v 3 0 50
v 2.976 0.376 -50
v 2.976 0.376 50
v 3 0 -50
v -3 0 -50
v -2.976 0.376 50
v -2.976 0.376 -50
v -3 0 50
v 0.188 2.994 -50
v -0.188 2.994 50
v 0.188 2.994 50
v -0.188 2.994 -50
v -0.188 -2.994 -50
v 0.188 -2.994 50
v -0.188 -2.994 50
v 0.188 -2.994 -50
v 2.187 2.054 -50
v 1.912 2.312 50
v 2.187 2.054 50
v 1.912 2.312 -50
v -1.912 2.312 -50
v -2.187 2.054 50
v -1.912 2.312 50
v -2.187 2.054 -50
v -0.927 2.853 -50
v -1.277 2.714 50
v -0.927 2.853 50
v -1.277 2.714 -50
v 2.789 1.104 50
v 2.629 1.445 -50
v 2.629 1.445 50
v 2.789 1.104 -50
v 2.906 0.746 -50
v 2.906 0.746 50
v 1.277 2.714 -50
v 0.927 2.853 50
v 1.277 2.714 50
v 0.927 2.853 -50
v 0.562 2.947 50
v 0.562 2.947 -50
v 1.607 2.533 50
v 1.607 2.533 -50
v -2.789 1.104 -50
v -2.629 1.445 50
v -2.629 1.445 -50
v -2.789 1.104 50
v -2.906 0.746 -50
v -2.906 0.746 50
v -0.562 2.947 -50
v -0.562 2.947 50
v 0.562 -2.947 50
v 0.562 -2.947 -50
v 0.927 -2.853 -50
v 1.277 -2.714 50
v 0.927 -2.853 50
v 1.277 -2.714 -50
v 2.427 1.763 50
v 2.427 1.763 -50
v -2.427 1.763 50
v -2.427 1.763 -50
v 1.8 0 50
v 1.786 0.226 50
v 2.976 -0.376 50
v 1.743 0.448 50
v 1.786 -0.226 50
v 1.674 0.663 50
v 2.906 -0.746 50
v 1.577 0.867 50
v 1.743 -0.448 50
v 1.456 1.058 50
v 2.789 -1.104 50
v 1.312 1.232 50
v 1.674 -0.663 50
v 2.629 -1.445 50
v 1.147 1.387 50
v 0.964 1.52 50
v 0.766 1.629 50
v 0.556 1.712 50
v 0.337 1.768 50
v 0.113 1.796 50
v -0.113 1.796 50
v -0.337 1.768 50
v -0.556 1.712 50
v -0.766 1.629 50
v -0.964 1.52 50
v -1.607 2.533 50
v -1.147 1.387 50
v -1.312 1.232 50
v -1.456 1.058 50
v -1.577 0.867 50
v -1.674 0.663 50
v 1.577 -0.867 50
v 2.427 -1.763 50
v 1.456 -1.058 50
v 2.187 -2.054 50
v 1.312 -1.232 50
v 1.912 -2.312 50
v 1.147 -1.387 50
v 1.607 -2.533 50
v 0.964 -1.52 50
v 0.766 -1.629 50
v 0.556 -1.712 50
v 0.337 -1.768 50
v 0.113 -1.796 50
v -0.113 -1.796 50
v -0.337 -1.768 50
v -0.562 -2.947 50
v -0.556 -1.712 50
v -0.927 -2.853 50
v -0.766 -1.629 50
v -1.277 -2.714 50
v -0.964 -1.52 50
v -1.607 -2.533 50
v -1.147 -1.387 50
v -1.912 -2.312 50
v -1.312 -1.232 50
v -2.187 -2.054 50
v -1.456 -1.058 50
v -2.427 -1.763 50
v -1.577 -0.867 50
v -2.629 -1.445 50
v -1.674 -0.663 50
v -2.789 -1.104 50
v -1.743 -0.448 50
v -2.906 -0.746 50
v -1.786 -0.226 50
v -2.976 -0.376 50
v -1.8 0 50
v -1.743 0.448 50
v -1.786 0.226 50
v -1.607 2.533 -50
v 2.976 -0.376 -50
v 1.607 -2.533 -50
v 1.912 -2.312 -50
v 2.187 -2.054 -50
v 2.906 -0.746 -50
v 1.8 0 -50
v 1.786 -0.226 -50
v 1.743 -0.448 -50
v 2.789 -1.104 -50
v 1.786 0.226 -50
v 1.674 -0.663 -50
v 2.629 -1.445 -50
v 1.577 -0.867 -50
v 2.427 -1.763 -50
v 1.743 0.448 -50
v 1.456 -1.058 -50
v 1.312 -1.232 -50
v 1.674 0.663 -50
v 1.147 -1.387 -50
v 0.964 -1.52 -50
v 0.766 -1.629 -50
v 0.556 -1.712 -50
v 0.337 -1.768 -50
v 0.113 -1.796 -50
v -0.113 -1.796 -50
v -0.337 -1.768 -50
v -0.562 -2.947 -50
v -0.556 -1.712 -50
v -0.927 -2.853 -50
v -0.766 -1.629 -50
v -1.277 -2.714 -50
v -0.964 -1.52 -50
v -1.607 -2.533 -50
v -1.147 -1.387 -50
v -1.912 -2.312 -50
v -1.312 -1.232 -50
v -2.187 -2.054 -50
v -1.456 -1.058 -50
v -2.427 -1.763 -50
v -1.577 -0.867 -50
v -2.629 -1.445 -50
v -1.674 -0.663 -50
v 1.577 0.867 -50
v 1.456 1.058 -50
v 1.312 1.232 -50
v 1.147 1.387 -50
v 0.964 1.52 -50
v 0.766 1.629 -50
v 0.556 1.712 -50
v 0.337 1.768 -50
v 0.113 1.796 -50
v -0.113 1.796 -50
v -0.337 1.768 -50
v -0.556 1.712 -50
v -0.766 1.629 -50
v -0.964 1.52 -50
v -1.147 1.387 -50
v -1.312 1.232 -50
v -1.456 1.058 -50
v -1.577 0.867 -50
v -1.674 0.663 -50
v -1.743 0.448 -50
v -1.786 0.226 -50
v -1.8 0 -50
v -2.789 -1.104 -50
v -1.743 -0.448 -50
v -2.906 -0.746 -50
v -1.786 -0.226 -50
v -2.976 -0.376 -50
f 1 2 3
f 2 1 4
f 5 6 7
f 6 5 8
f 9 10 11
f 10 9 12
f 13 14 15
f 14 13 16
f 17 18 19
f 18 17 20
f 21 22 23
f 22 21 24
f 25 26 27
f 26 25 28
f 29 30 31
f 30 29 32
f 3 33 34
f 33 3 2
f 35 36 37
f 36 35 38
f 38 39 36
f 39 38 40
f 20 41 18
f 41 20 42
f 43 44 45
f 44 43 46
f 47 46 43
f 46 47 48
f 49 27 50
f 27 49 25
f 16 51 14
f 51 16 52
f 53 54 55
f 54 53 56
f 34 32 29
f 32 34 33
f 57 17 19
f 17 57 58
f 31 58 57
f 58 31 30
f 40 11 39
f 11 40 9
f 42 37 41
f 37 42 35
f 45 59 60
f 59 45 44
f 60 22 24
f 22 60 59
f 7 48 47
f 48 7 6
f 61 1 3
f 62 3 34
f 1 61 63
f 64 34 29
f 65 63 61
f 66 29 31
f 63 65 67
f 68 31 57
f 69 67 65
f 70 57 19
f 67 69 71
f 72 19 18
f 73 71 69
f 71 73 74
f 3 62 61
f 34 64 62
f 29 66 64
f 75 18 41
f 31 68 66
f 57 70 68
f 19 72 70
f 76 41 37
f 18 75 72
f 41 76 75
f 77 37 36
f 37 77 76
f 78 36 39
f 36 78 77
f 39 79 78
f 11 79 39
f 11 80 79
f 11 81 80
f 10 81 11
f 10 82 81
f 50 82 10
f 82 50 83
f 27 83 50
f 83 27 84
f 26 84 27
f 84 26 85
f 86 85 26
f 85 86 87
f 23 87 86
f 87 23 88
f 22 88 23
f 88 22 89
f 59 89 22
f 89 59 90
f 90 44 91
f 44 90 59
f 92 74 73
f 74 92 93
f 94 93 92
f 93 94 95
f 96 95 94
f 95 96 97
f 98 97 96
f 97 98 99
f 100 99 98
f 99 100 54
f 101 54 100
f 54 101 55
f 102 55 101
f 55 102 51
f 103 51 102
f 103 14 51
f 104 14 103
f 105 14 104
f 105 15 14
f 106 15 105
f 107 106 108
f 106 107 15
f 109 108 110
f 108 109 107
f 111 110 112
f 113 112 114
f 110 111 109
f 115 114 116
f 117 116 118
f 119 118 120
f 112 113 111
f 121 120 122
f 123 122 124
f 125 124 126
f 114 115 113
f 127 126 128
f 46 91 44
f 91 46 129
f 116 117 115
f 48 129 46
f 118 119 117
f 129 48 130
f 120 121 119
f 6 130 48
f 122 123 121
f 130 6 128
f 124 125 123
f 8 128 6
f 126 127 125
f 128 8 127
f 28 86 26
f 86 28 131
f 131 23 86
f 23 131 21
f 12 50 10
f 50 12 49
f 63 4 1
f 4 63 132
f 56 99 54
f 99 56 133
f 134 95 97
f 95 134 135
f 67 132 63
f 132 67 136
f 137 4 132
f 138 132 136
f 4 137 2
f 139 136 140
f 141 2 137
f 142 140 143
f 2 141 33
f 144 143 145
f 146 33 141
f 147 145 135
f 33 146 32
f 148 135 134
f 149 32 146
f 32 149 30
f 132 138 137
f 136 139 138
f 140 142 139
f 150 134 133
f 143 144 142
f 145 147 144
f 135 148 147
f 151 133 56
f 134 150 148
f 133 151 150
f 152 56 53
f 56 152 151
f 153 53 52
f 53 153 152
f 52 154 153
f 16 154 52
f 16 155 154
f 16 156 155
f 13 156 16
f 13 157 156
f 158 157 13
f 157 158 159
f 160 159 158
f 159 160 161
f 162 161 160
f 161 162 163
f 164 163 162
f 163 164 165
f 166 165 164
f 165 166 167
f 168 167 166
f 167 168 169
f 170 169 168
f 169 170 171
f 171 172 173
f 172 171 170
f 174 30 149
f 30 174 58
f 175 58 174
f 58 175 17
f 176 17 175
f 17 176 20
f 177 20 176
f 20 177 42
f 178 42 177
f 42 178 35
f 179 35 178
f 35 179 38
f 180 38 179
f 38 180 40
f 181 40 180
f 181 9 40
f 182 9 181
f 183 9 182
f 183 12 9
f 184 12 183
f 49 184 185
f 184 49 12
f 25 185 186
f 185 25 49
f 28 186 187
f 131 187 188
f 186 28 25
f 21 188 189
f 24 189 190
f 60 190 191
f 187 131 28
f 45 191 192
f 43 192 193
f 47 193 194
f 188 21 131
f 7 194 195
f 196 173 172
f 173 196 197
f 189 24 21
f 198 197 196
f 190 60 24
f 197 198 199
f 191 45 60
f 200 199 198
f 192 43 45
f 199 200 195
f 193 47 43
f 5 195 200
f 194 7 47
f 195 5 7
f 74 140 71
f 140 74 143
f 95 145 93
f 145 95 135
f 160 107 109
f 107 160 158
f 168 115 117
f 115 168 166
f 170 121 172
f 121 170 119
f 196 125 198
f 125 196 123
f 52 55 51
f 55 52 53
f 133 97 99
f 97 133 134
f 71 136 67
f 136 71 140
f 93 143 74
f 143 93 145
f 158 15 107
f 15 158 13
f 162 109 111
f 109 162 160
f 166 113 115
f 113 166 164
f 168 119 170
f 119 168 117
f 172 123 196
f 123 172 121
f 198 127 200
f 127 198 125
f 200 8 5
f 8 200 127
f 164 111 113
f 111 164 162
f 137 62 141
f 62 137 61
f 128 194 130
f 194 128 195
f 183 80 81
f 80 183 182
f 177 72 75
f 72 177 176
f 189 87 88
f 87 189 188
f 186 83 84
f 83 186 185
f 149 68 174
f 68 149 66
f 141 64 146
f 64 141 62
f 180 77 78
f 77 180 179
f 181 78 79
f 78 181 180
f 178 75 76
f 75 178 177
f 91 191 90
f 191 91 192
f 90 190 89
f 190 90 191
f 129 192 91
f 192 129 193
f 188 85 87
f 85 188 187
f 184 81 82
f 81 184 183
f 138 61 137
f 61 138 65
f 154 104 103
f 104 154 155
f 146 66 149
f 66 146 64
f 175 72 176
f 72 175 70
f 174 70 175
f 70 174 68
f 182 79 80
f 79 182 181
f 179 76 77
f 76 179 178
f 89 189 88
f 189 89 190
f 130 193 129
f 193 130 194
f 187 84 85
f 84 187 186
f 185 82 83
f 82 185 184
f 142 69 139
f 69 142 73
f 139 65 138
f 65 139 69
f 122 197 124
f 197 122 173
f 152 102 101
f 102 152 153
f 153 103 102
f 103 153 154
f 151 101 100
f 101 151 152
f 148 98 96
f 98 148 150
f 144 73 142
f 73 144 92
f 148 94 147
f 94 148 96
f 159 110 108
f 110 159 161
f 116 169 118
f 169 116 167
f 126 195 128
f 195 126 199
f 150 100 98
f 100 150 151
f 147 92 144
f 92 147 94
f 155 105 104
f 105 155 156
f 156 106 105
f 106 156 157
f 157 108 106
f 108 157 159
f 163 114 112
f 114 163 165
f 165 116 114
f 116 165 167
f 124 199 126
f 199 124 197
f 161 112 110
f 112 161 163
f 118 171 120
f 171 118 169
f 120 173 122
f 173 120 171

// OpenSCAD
$fn = 50;


difference() {
	union() {
		translate(v = [0, 0, -50.0000000000]) {
			cylinder(h = 100, r = 3.0000000000);
		}
	}
	union() {
		translate(v = [0, 0, -100.0000000000]) {
			cylinder(h = 200, r = 1.8000000000);
		}
	}
}
